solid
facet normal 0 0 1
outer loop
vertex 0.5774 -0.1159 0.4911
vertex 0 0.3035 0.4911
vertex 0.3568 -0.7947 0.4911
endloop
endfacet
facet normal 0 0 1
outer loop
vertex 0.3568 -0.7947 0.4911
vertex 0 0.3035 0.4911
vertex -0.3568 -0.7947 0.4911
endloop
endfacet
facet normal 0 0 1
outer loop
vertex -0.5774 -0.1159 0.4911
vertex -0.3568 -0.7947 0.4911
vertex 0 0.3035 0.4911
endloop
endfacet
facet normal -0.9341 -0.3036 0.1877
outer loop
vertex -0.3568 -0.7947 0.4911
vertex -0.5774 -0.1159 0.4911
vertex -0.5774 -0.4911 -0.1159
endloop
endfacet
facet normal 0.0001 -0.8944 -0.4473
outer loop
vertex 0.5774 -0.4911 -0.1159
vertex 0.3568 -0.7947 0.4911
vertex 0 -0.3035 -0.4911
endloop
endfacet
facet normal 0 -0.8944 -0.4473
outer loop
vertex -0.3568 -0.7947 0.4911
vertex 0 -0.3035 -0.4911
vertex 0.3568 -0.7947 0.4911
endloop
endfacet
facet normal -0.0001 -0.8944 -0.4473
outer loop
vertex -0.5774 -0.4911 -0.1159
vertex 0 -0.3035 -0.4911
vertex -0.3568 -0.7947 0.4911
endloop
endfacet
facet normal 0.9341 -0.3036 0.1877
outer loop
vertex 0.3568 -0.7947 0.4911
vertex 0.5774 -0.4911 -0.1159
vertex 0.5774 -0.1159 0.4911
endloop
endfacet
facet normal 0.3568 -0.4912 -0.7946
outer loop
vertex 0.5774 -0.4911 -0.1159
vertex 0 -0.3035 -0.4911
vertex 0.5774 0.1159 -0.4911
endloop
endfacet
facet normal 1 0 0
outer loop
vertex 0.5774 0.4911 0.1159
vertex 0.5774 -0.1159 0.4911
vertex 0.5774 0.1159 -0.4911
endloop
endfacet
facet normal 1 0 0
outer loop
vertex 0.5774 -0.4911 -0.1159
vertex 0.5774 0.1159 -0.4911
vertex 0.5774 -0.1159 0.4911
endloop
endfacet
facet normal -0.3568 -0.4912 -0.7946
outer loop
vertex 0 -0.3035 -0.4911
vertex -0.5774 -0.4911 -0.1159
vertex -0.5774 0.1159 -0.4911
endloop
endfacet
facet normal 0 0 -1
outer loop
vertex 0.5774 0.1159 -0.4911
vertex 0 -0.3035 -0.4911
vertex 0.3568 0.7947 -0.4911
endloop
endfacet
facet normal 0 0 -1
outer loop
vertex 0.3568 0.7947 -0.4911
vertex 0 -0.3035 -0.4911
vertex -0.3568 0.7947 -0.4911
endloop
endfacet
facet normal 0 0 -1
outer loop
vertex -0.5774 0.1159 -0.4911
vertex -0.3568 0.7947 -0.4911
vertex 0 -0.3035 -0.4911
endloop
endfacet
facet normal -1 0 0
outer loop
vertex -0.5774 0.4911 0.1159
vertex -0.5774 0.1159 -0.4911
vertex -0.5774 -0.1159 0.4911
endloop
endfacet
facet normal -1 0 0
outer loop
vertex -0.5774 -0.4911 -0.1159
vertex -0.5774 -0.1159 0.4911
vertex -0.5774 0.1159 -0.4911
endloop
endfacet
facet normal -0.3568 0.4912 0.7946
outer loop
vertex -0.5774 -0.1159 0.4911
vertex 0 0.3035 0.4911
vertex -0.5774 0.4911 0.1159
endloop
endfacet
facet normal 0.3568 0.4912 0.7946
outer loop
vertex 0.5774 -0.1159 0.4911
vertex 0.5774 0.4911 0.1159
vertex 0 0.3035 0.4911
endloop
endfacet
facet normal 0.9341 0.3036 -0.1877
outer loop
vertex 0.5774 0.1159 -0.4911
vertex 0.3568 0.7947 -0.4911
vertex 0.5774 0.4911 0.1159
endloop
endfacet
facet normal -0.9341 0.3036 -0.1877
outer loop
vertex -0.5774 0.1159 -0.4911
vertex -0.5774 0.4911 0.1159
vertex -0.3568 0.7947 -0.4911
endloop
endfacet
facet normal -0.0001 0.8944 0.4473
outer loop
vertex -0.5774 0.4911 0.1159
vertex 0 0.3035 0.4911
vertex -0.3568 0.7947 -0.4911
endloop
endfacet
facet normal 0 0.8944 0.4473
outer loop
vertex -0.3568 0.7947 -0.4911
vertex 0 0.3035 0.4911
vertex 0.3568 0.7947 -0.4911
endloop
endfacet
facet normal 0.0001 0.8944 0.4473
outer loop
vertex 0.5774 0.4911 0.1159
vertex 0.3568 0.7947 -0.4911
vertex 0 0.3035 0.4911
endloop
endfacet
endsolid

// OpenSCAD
polyhedron( points = [[-0.356822089743385, -0.794654472325328, 0.491123473139702], [0.356822089765406, -0.794654472325328, 0.491123473139702], [0.577350269177276, -0.491123473150874, -0.115938525057031], [-3.01388555961342e-12, -0.303530999050877, -0.491123473162978], [-0.5773502691118, -0.49112347316341, -0.11593852503196], [-0.577350269139055, -0.115938524991621, 0.491123473139702], [0.577350269194768, -0.115938525095305, 0.491123473139702], [0.577350269107525, 0.115938525082941, -0.491123473110433], [-0.577350269168958, 0.115938525000337, -0.491123473156463], [6.55209426931698e-11, 0.303530999045796, 0.491123473139702], [0.577350269125016, 0.491123473178469, 0.115938525049176], [0.356822089634758, 0.794654472377817, -0.491123473071446], [-0.356822089874032, 0.794654472262684, -0.491123473099892], [-0.577350269030026, 0.491123473154698, 0.115938524942516]], faces = [[0, 1, 6, 9, 5], [0, 5, 4], [0, 4, 3, 2, 1], [1, 2, 6], [2, 3, 7], [2, 7, 10, 6], [3, 4, 8], [3, 8, 12, 11, 7], [4, 5, 13, 8], [5, 9, 13], [6, 10, 9], [7, 11, 10], [8, 13, 12], [9, 10, 11, 12, 13]]);
